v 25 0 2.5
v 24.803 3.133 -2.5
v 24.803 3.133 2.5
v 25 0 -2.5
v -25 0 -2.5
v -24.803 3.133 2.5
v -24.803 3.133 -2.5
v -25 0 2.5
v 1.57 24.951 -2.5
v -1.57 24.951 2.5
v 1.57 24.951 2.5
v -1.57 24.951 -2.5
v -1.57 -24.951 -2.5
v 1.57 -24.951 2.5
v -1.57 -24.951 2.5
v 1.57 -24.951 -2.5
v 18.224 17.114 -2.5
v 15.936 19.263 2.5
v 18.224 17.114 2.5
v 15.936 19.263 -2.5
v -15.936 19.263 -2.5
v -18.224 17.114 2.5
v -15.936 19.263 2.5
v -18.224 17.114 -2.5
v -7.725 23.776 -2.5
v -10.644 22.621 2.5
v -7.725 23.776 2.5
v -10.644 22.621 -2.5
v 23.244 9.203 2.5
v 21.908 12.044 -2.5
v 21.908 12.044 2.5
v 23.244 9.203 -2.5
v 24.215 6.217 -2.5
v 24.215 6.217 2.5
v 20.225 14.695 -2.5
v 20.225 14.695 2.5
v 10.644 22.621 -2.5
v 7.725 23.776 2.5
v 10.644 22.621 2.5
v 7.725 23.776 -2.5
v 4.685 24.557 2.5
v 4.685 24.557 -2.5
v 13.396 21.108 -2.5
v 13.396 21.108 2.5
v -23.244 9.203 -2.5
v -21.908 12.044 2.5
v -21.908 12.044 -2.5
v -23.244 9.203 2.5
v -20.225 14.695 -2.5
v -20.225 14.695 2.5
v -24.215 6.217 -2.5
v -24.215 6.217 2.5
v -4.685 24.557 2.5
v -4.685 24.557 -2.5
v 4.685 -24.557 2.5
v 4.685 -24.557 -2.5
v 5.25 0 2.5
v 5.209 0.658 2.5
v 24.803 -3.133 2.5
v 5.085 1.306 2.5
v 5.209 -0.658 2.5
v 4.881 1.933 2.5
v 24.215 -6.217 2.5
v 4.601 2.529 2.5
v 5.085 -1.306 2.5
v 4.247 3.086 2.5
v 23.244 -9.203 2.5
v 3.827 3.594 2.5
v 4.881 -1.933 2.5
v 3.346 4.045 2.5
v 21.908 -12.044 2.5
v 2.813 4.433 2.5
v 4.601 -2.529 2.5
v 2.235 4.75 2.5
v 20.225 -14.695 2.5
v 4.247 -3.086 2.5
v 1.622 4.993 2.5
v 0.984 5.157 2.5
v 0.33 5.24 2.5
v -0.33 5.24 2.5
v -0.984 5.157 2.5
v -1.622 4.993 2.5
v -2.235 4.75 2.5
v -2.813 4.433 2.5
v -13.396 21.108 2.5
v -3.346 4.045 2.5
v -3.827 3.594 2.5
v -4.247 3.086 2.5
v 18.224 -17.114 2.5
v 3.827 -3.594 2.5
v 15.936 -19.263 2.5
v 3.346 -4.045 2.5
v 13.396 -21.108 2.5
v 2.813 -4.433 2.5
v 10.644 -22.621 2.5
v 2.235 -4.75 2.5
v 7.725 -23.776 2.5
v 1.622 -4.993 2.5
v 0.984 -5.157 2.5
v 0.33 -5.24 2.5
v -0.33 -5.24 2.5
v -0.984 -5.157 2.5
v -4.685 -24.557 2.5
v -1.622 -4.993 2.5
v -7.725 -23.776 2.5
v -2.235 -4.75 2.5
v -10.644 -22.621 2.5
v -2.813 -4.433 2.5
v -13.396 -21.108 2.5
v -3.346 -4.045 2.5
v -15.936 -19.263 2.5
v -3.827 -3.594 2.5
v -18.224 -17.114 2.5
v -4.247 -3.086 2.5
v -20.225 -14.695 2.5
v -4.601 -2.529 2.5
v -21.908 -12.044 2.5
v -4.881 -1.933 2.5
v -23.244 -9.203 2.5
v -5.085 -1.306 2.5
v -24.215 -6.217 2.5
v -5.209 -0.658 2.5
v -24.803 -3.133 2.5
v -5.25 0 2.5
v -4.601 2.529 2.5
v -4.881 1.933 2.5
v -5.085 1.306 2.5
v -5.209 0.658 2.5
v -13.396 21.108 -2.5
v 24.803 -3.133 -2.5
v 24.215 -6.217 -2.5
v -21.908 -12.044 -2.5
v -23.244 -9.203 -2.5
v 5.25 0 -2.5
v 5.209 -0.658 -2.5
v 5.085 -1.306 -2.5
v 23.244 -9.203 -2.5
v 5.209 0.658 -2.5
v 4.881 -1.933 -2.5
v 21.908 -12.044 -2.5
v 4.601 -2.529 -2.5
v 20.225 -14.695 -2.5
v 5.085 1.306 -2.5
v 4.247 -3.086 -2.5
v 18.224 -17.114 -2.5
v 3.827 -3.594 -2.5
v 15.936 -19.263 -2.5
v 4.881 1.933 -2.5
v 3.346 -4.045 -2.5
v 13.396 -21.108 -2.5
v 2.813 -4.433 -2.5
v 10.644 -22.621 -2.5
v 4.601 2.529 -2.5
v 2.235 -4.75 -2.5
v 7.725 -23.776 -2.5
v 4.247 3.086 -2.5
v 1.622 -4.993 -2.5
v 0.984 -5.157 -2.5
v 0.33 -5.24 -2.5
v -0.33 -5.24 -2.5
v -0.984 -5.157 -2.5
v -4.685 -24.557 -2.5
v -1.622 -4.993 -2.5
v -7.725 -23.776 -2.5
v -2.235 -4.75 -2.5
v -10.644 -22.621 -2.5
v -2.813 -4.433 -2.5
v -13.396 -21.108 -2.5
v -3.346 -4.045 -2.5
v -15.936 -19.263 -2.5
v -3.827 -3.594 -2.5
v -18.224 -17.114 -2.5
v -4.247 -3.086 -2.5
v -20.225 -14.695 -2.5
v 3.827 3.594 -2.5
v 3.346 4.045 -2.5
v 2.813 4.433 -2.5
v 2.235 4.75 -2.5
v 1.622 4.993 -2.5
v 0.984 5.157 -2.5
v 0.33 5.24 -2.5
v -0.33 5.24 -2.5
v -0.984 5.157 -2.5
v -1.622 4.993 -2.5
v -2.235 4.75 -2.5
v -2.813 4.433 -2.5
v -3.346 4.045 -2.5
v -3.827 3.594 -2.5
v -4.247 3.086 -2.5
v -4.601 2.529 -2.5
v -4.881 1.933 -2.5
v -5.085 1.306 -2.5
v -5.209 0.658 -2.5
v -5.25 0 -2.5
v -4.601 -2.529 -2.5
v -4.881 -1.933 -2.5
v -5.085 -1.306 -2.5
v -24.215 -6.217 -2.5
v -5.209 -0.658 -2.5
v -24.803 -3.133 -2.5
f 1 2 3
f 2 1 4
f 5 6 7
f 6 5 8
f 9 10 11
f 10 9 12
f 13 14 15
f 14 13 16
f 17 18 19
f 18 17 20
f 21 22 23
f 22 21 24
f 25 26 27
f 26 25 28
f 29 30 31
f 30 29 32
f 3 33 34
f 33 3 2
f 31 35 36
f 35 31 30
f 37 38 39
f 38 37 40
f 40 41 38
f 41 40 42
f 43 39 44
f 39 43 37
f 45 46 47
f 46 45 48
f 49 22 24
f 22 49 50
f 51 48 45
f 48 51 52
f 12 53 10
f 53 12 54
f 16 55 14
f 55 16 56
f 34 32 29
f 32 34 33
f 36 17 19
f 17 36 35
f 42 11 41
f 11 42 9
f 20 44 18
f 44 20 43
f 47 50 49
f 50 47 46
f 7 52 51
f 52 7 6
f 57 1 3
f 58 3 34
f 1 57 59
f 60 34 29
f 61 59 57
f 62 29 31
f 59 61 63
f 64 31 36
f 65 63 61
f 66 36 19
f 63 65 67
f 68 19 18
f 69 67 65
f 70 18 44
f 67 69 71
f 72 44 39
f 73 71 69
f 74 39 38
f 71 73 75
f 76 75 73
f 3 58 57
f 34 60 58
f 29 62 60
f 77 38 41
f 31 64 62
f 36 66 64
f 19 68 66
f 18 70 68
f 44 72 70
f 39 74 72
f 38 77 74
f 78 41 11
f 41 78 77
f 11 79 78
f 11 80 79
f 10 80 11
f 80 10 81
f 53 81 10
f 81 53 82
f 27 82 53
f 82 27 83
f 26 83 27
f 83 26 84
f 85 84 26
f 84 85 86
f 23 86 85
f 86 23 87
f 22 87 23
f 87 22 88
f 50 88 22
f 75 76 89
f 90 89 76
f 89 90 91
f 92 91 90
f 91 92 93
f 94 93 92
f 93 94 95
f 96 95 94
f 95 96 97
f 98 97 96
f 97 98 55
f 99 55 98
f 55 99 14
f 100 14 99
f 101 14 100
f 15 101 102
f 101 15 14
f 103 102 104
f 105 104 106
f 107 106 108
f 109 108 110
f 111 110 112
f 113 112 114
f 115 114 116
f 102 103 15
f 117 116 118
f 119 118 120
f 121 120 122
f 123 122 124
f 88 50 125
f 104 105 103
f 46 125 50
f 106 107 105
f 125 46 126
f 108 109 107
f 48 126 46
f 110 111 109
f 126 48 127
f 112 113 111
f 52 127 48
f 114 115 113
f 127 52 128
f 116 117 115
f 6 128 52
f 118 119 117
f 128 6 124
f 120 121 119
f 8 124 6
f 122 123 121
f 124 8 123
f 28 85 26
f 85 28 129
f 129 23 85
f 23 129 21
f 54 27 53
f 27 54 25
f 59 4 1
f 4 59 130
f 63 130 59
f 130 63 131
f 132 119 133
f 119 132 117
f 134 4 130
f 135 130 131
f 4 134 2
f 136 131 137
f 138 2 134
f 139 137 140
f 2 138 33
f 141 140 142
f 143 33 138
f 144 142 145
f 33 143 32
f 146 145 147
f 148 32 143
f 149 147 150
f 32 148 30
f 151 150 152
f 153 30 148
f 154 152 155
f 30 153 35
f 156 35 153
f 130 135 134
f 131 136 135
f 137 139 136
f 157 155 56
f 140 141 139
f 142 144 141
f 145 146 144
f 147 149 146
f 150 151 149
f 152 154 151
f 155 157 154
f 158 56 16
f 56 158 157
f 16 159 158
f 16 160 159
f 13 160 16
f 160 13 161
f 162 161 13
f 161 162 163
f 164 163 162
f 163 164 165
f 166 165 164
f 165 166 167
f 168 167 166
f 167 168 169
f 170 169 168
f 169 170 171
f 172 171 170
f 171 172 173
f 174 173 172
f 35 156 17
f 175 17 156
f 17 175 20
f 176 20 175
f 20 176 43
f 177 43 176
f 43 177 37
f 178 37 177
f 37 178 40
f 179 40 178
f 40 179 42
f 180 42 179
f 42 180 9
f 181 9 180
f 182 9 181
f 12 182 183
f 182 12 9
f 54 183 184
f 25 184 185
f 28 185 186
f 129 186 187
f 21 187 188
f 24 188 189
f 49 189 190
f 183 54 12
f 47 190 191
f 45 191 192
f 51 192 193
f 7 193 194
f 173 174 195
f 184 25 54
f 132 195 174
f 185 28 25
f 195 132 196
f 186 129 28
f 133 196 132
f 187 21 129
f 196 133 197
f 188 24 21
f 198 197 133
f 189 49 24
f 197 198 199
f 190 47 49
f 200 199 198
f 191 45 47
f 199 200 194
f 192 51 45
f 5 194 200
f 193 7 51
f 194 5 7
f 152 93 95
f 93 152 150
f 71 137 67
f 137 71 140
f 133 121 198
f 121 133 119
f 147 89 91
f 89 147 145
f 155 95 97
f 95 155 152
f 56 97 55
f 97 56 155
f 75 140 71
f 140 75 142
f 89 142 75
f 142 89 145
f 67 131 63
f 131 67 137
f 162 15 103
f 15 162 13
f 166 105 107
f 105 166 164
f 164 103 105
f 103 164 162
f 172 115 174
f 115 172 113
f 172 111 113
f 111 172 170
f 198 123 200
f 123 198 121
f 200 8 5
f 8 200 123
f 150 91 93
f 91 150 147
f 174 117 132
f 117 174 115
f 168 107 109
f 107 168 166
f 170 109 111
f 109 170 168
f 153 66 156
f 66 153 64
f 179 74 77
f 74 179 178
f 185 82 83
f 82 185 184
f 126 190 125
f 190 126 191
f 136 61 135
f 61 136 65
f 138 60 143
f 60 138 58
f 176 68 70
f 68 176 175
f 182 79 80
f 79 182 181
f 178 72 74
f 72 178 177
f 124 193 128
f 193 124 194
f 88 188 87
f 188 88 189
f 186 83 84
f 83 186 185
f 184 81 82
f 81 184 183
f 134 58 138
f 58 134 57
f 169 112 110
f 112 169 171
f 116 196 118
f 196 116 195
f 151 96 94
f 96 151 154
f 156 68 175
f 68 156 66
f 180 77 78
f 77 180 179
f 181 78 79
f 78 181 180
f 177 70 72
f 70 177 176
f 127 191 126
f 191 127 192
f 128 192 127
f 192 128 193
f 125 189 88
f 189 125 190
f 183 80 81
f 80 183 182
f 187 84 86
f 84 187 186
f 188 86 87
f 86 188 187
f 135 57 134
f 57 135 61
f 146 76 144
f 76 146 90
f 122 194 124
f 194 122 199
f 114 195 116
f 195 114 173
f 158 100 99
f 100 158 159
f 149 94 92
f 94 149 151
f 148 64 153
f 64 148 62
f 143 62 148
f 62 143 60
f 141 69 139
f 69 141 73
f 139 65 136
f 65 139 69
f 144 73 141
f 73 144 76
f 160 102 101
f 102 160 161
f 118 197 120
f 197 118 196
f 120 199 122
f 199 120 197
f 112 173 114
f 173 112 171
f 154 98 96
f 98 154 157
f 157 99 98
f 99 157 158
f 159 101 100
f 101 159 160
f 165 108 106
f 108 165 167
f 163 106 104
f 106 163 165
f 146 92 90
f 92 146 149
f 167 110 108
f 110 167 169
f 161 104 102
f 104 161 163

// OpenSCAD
$fn = 50;


difference() {
	union() {
		translate(v = [0, 0, -2.5000000000]) {
			cylinder(h = 5, r = 25.0000000000);
		}
	}
	union() {
		translate(v = [0, 0, -100.0000000000]) {
			cylinder(h = 200, r = 5.2500000000);
		}
	}
}
